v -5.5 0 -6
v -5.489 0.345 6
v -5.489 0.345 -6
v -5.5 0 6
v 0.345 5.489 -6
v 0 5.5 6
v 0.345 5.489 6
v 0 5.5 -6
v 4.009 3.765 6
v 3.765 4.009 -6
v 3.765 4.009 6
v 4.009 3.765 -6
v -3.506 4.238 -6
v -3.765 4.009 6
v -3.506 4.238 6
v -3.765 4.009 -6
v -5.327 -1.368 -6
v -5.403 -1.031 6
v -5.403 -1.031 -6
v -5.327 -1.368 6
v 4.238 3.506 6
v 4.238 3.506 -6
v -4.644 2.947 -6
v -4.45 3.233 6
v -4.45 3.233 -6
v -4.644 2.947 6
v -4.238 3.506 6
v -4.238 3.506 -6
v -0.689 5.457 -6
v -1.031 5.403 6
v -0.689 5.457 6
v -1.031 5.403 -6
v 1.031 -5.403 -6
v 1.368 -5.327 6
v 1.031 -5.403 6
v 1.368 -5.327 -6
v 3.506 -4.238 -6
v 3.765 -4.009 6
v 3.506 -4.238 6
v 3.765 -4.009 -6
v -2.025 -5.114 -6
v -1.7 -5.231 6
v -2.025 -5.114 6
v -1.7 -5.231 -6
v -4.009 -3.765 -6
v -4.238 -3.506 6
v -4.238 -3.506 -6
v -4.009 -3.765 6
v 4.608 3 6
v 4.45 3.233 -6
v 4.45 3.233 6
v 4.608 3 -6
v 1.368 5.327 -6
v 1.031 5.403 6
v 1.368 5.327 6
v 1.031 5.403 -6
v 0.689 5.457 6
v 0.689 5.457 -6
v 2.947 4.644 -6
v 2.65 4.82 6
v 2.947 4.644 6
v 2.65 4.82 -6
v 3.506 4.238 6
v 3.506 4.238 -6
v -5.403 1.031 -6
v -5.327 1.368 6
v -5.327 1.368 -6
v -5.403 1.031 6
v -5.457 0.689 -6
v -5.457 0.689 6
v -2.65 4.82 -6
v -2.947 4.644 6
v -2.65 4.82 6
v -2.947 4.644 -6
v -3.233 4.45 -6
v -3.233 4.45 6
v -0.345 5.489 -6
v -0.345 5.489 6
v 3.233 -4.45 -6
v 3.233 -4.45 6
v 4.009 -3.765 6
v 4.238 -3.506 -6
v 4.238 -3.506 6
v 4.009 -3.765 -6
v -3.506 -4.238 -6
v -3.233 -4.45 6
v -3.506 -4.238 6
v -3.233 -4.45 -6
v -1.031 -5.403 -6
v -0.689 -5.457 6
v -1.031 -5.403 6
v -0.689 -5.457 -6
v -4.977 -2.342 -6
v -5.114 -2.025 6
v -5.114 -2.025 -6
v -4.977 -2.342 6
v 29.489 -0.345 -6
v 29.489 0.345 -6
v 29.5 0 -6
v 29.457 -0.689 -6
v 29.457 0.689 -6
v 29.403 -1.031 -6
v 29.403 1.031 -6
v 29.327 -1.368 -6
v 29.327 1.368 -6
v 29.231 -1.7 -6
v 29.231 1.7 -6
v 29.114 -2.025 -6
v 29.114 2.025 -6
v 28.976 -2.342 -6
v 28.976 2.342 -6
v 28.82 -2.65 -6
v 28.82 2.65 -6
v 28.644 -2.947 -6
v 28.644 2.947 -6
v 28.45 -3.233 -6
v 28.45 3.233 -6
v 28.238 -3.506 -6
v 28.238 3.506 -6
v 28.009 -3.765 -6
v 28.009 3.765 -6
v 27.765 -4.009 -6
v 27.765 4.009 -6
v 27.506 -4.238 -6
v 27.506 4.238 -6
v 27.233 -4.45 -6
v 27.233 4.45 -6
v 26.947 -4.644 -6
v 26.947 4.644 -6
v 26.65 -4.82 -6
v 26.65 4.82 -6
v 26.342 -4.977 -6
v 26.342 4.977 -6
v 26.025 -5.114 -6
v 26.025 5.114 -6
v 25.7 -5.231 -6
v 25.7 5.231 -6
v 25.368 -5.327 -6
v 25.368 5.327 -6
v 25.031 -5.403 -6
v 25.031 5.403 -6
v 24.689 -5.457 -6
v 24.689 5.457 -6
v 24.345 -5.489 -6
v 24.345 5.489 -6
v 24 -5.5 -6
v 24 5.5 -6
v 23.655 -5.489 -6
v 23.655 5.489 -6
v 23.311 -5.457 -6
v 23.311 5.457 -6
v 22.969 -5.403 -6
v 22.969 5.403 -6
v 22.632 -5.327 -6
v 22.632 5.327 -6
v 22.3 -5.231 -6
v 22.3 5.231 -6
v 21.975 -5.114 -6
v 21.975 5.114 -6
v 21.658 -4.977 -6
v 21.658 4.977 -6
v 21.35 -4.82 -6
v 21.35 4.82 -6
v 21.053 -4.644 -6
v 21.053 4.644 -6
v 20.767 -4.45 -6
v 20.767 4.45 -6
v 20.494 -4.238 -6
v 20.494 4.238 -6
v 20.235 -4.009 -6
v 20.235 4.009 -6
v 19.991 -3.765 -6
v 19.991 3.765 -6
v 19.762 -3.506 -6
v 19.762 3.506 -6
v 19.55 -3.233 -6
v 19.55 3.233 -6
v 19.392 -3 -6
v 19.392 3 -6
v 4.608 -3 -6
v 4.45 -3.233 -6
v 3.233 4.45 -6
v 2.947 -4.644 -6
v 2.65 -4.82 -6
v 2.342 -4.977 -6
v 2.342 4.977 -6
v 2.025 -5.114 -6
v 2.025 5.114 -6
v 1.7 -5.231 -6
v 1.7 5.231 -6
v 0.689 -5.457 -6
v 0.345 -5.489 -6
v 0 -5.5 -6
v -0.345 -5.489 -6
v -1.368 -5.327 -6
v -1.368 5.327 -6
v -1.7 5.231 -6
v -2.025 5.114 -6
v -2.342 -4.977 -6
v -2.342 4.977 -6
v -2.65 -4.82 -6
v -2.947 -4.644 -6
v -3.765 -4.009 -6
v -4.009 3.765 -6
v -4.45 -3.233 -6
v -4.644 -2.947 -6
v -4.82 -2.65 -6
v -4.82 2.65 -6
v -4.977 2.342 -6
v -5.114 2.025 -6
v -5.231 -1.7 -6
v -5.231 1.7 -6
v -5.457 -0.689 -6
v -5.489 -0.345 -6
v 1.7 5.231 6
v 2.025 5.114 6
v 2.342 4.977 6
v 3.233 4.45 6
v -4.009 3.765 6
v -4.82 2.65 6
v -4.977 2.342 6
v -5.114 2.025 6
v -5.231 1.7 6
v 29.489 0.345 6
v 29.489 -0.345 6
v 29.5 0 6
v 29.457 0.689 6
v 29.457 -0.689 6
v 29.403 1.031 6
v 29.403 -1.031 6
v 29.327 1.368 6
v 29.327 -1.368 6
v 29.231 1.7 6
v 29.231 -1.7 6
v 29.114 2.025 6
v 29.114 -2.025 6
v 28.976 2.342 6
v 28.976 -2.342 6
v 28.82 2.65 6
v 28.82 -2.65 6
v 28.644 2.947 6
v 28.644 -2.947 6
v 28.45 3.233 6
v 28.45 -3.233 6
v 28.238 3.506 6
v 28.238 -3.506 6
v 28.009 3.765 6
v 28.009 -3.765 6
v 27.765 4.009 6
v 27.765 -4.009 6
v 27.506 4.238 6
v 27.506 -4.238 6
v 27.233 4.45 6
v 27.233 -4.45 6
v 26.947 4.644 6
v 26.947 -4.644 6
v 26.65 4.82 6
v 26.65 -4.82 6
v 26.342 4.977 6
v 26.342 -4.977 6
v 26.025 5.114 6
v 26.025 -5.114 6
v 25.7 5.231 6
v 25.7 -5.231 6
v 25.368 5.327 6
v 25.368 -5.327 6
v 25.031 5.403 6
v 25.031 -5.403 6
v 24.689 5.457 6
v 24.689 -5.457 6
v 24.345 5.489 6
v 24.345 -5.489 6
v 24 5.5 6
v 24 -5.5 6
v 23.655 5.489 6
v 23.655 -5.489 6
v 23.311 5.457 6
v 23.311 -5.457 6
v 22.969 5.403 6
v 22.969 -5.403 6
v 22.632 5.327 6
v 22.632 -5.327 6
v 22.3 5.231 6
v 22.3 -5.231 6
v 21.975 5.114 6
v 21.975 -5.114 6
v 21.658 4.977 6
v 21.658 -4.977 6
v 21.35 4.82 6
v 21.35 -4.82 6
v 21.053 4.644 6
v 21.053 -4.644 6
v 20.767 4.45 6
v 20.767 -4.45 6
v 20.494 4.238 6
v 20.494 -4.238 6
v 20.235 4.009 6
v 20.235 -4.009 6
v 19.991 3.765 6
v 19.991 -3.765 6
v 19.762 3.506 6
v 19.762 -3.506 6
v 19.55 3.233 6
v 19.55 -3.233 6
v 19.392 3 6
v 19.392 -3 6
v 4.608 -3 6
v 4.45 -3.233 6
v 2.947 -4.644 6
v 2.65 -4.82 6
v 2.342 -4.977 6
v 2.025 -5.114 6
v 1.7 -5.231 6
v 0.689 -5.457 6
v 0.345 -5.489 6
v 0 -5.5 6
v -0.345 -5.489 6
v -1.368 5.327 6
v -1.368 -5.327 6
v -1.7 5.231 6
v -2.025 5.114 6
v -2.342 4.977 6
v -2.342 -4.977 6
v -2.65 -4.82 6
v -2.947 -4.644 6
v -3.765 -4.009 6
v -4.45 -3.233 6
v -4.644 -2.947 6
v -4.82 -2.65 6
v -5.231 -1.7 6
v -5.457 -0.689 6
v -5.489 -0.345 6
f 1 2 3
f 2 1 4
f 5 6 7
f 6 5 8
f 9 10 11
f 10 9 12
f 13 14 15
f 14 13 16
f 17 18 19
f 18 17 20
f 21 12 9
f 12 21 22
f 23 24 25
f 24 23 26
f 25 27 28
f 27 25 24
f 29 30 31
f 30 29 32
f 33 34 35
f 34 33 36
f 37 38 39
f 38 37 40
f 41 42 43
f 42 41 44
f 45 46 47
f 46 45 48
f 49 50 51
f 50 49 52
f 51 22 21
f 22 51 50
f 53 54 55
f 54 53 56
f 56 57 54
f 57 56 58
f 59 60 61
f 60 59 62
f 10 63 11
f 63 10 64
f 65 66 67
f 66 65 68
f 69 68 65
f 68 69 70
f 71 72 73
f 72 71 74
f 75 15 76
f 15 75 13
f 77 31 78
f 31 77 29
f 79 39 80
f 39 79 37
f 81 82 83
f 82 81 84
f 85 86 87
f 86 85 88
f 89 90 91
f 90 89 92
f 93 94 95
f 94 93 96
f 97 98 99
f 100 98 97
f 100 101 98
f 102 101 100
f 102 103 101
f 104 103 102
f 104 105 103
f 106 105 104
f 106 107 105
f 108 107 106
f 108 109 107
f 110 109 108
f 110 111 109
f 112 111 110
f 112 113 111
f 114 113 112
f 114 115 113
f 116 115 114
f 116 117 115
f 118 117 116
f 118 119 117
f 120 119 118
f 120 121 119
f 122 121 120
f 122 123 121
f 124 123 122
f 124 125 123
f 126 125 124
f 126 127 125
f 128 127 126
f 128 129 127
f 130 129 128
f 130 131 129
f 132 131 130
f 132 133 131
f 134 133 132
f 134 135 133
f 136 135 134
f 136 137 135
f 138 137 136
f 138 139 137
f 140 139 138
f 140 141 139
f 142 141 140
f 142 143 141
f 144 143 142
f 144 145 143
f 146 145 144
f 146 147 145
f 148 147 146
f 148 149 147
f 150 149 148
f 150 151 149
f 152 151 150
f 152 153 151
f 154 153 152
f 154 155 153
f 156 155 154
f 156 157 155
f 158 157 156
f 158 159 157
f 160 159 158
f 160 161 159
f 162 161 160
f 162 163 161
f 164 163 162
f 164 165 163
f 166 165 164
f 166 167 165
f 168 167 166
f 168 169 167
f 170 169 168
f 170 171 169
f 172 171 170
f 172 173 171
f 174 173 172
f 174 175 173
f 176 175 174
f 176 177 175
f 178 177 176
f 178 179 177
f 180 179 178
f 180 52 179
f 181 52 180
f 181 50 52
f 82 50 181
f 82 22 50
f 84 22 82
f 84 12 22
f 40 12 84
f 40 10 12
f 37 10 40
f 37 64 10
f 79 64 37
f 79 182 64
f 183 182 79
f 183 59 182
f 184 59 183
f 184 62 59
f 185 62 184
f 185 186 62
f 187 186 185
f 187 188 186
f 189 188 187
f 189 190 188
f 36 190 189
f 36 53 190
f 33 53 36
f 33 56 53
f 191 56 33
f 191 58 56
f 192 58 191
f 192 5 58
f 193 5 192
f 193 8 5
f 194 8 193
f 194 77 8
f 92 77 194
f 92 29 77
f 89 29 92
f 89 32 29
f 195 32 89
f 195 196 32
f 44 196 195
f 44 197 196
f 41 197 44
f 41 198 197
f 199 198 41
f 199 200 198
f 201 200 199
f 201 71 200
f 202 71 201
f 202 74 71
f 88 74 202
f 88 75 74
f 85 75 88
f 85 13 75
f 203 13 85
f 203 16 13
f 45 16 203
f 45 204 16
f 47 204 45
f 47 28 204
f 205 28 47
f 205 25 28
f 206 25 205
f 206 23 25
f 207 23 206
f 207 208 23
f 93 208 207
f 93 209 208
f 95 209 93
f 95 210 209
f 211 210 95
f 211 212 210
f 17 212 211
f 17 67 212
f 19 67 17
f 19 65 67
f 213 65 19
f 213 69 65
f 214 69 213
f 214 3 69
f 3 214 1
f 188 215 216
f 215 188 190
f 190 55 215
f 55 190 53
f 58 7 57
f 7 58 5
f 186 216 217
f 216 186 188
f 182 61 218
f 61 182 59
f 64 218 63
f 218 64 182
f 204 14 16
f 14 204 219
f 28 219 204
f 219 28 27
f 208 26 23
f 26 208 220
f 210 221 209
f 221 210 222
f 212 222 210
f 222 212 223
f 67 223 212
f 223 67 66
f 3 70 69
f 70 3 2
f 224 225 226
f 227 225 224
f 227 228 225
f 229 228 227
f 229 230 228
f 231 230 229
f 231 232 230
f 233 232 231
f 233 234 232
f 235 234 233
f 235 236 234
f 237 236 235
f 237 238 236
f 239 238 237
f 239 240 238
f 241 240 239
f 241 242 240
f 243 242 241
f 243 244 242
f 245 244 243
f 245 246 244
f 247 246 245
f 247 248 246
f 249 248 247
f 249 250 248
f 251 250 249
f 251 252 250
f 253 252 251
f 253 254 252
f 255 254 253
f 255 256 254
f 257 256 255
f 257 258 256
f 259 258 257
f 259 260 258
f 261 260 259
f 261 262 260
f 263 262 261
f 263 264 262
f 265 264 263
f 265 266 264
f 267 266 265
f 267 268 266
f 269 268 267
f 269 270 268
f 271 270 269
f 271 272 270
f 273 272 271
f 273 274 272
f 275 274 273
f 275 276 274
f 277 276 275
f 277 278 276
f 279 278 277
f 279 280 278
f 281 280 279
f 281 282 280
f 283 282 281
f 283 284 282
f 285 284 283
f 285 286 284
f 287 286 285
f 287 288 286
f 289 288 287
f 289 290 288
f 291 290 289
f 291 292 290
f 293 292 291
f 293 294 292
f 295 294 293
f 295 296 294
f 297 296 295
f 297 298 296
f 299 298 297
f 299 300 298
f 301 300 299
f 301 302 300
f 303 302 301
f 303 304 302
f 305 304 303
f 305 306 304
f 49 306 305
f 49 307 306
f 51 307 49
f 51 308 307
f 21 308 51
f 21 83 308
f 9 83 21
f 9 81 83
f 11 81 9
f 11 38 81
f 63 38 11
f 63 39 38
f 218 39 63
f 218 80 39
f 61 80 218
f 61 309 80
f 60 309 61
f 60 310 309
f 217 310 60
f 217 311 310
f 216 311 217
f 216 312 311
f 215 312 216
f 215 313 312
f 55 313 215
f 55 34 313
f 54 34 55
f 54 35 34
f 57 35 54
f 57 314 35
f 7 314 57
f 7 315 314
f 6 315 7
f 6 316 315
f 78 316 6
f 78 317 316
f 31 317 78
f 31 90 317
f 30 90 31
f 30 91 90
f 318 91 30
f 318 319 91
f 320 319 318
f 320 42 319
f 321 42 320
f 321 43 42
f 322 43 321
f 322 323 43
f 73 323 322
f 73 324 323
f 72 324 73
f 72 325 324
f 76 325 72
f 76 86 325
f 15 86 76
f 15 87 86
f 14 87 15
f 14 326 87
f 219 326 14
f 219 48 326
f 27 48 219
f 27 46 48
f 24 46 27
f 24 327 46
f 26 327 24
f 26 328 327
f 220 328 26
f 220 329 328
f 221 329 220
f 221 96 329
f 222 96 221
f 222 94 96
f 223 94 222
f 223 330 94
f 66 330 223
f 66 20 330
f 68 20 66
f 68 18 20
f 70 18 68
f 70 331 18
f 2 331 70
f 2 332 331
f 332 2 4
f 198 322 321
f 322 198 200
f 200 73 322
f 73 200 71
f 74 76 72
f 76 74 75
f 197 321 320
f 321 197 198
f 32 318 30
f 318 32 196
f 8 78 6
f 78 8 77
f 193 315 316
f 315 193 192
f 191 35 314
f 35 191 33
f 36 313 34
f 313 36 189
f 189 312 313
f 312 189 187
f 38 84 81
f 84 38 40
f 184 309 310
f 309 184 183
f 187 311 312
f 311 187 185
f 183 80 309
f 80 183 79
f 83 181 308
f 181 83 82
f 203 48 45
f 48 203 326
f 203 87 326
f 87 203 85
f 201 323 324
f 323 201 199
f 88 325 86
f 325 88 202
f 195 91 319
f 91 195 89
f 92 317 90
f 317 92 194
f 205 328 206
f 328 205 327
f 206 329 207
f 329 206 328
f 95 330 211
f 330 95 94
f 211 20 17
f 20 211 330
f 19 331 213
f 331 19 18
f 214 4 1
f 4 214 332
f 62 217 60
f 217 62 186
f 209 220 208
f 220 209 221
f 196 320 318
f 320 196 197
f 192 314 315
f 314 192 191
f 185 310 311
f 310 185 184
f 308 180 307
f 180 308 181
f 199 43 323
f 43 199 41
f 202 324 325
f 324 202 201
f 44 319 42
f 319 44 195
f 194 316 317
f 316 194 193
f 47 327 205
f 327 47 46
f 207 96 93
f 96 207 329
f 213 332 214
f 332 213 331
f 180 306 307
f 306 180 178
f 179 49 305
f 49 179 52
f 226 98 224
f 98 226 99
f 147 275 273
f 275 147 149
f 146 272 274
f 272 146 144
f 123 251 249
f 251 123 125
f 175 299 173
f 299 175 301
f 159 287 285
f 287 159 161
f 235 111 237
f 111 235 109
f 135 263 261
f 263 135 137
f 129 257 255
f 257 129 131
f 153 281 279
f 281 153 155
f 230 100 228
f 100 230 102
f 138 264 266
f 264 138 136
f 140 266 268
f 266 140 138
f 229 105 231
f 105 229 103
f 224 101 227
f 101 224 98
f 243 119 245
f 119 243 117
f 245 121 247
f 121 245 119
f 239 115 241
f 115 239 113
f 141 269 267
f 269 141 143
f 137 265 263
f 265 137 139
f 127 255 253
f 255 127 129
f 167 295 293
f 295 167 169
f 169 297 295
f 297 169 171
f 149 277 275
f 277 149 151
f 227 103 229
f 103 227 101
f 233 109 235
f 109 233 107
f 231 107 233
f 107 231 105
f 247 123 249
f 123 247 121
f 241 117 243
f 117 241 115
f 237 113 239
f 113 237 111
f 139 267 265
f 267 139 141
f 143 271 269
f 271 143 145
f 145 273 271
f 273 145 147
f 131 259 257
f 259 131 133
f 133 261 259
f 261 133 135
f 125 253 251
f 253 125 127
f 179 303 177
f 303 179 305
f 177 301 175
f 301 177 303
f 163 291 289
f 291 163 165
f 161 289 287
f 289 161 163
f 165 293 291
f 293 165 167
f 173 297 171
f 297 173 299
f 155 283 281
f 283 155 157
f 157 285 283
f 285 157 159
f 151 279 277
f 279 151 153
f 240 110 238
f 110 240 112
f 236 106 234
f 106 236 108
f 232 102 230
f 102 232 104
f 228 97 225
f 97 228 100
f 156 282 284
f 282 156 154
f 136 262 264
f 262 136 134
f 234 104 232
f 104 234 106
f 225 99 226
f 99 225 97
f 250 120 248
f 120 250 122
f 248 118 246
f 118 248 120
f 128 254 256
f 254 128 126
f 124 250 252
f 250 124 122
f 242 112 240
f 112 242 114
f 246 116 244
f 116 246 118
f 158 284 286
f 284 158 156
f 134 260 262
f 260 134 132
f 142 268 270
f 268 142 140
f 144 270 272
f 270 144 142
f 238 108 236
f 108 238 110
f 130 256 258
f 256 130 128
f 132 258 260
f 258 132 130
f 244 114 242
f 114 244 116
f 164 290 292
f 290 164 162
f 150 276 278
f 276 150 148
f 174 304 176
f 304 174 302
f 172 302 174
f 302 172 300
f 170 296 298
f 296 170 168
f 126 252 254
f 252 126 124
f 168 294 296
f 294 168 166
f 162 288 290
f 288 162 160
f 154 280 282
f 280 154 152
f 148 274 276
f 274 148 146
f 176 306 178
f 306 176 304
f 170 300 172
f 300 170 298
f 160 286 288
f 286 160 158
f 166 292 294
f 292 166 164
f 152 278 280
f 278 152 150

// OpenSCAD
// Measurements
length = 35;       // Length
width_outer = 11;  // Diameter (Or width)
width_inner = 6;   // Width Seperator
height = 12;       // Height

// Render options
$fn = 100; // Number of facets

// Computed variables
radius  = width_outer/2;   // Cylinder Radius
con_len = length-radius*2; // Cylinder Conector Length

cylinder(h=height, r=radius, center=true);
translate([con_len/2,0,0]) {
    cube(size = [con_len,width_inner,height], center = true);
};
translate([con_len,0,0]) {
    cylinder(h=height, r=radius, center=true);
};
